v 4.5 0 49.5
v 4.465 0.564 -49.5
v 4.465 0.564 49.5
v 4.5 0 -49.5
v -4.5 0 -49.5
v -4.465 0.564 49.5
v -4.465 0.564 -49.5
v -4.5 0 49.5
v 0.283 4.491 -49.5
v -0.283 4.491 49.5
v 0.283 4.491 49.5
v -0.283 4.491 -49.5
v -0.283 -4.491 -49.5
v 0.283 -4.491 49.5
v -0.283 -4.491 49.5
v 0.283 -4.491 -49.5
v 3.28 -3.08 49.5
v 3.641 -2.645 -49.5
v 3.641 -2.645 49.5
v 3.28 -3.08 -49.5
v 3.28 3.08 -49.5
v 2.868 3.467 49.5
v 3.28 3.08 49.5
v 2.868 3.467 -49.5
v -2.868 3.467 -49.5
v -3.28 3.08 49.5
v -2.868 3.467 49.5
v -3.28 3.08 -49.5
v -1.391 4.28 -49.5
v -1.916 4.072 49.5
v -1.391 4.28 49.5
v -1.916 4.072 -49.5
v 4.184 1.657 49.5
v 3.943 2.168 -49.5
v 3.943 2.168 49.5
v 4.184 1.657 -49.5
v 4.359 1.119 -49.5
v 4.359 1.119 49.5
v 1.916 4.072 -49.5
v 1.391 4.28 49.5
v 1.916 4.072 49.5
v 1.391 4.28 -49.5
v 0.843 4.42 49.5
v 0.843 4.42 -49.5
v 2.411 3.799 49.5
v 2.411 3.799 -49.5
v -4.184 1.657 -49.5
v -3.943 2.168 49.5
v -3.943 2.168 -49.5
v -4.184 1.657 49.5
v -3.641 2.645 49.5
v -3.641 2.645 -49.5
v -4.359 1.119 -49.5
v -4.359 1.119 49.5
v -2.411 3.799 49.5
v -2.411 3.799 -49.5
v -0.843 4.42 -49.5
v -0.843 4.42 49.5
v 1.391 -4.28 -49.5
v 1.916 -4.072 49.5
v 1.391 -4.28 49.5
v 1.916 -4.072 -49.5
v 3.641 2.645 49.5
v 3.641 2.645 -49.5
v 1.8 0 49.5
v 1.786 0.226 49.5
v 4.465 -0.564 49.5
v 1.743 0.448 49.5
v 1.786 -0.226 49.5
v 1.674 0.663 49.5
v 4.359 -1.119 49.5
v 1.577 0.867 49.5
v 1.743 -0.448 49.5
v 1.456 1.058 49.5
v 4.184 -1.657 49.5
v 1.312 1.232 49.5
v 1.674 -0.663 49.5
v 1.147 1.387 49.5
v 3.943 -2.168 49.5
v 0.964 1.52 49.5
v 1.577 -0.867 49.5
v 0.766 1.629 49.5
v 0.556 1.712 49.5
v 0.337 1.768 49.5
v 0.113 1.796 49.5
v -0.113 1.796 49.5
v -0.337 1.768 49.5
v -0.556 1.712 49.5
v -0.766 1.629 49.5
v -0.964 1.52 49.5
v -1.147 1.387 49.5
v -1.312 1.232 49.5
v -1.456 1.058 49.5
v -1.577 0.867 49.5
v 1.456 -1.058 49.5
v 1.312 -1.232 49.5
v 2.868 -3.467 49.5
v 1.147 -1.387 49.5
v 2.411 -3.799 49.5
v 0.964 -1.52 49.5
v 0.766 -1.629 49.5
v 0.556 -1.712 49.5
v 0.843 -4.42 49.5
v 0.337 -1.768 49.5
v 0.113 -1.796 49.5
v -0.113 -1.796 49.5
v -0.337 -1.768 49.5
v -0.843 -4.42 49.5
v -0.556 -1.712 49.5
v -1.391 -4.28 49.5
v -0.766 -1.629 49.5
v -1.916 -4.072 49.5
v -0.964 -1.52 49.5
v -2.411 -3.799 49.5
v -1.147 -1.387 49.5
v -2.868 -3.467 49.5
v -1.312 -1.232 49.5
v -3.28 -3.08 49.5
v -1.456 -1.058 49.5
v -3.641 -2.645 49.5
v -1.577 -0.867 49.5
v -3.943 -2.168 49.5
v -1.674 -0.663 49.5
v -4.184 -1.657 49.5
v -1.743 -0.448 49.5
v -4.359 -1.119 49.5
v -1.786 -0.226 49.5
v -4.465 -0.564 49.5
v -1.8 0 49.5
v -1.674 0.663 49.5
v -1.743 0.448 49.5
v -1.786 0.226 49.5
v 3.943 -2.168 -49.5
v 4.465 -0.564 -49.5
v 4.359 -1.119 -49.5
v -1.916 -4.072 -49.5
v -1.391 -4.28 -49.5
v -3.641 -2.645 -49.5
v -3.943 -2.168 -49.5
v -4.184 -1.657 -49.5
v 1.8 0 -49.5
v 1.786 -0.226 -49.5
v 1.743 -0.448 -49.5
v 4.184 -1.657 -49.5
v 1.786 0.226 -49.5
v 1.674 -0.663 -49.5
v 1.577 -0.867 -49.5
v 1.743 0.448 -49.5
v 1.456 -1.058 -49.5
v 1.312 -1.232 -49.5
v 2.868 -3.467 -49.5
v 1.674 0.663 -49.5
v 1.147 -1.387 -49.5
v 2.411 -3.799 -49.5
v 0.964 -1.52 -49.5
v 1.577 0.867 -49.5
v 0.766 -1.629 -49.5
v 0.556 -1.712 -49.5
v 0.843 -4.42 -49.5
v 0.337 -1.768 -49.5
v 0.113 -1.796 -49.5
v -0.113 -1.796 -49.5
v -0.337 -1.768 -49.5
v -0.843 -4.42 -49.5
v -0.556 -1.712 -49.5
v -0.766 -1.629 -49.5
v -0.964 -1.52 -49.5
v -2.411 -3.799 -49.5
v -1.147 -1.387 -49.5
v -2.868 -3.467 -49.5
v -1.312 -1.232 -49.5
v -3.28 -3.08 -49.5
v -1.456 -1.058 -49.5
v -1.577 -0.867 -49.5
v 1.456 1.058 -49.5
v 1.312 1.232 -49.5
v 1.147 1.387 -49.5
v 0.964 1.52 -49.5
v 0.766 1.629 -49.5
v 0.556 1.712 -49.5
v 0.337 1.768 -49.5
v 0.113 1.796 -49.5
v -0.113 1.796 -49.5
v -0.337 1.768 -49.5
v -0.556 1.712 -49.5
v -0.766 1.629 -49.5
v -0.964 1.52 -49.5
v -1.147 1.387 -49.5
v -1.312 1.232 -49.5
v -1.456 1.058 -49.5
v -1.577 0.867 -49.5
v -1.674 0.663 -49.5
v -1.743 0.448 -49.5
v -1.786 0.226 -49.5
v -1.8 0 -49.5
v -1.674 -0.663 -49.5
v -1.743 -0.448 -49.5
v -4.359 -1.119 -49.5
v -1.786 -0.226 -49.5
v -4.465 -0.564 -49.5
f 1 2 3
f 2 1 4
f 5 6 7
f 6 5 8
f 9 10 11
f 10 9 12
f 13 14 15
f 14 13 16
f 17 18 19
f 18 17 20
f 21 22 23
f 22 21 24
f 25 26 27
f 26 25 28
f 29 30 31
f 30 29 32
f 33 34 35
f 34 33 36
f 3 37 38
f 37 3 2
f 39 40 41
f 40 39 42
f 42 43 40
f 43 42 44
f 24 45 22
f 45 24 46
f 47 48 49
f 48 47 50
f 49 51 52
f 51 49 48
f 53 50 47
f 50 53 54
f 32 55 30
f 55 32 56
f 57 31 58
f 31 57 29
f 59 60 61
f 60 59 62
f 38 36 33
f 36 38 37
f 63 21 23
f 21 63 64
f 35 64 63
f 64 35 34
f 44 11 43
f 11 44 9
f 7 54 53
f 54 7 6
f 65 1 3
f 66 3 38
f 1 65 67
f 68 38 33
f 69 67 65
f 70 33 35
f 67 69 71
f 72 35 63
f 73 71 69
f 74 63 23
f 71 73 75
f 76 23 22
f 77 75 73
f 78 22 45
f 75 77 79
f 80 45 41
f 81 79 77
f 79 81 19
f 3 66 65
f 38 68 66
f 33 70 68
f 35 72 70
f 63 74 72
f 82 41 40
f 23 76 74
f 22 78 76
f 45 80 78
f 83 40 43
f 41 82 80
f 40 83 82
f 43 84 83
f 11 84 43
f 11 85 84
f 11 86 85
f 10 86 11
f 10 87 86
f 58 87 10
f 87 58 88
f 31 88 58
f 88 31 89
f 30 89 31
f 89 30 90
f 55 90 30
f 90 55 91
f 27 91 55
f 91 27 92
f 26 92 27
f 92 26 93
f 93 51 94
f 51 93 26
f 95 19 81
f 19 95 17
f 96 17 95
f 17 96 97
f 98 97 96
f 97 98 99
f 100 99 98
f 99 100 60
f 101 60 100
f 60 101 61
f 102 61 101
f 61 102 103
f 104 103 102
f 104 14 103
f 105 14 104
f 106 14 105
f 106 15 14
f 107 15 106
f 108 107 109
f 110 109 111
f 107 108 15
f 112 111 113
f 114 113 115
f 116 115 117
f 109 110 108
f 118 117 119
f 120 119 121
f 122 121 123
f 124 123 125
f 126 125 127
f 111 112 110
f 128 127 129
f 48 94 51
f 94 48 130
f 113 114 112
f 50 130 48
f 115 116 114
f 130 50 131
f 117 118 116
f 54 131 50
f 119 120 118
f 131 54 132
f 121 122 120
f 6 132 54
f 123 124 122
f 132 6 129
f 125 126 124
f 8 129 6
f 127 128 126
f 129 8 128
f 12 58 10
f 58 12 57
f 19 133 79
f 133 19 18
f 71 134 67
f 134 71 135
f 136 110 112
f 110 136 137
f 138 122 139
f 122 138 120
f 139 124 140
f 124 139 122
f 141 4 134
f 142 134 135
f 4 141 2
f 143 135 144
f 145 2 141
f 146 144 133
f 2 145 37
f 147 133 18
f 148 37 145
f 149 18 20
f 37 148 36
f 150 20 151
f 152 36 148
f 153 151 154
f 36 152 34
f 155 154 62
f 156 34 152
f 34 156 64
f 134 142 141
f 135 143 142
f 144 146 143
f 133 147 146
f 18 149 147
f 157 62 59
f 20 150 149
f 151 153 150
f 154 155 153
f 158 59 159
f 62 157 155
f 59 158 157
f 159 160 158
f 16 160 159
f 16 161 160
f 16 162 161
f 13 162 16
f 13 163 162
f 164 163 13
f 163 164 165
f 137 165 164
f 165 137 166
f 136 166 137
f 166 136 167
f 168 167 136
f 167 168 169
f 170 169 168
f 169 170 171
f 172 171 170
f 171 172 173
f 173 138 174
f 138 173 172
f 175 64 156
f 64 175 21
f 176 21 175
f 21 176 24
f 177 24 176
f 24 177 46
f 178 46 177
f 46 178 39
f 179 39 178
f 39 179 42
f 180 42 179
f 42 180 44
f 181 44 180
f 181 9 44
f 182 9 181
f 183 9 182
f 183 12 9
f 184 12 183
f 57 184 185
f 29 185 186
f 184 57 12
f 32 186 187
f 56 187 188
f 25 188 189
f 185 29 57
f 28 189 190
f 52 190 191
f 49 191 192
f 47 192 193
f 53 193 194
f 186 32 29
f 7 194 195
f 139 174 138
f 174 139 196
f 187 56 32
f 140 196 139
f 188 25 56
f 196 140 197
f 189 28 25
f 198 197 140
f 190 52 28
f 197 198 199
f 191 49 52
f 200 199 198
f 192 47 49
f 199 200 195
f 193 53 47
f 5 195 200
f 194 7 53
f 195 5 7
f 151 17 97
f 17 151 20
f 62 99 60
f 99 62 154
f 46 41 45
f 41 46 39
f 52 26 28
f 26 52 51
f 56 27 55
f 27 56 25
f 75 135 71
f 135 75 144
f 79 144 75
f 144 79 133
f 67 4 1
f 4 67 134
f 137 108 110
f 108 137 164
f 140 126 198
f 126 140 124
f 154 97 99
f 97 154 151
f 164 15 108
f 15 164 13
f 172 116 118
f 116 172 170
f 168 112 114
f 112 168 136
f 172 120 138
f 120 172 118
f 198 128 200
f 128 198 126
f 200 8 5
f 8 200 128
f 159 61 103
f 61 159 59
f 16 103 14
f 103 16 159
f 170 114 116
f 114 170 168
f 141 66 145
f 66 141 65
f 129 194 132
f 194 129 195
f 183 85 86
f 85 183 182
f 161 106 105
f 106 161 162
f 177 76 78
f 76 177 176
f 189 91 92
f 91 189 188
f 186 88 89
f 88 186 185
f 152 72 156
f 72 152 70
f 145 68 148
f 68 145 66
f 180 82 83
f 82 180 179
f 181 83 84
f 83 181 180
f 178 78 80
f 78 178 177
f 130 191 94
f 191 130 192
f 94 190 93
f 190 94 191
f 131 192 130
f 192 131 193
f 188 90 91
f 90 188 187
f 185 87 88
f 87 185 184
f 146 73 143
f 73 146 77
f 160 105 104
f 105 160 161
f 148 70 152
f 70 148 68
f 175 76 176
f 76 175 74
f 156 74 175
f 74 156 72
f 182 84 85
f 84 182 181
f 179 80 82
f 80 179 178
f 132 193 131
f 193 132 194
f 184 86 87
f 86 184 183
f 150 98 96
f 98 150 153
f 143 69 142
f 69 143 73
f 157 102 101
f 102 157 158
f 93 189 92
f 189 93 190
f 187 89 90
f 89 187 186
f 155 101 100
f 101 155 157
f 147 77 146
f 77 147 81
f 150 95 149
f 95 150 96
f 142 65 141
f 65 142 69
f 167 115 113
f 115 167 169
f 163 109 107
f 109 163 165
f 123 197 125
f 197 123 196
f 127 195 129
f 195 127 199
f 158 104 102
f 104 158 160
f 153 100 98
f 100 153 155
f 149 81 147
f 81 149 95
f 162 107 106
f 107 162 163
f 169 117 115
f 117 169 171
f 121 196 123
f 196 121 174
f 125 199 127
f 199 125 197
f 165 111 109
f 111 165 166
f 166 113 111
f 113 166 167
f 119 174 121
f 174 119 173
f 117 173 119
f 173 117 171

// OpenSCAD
$fn = 50;


difference() {
	union() {
		translate(v = [0, 0, -49.5000000000]) {
			cylinder(h = 99, r = 4.5000000000);
		}
	}
	union() {
		translate(v = [0, 0, -100.0000000000]) {
			cylinder(h = 200, r = 1.8000000000);
		}
	}
}
